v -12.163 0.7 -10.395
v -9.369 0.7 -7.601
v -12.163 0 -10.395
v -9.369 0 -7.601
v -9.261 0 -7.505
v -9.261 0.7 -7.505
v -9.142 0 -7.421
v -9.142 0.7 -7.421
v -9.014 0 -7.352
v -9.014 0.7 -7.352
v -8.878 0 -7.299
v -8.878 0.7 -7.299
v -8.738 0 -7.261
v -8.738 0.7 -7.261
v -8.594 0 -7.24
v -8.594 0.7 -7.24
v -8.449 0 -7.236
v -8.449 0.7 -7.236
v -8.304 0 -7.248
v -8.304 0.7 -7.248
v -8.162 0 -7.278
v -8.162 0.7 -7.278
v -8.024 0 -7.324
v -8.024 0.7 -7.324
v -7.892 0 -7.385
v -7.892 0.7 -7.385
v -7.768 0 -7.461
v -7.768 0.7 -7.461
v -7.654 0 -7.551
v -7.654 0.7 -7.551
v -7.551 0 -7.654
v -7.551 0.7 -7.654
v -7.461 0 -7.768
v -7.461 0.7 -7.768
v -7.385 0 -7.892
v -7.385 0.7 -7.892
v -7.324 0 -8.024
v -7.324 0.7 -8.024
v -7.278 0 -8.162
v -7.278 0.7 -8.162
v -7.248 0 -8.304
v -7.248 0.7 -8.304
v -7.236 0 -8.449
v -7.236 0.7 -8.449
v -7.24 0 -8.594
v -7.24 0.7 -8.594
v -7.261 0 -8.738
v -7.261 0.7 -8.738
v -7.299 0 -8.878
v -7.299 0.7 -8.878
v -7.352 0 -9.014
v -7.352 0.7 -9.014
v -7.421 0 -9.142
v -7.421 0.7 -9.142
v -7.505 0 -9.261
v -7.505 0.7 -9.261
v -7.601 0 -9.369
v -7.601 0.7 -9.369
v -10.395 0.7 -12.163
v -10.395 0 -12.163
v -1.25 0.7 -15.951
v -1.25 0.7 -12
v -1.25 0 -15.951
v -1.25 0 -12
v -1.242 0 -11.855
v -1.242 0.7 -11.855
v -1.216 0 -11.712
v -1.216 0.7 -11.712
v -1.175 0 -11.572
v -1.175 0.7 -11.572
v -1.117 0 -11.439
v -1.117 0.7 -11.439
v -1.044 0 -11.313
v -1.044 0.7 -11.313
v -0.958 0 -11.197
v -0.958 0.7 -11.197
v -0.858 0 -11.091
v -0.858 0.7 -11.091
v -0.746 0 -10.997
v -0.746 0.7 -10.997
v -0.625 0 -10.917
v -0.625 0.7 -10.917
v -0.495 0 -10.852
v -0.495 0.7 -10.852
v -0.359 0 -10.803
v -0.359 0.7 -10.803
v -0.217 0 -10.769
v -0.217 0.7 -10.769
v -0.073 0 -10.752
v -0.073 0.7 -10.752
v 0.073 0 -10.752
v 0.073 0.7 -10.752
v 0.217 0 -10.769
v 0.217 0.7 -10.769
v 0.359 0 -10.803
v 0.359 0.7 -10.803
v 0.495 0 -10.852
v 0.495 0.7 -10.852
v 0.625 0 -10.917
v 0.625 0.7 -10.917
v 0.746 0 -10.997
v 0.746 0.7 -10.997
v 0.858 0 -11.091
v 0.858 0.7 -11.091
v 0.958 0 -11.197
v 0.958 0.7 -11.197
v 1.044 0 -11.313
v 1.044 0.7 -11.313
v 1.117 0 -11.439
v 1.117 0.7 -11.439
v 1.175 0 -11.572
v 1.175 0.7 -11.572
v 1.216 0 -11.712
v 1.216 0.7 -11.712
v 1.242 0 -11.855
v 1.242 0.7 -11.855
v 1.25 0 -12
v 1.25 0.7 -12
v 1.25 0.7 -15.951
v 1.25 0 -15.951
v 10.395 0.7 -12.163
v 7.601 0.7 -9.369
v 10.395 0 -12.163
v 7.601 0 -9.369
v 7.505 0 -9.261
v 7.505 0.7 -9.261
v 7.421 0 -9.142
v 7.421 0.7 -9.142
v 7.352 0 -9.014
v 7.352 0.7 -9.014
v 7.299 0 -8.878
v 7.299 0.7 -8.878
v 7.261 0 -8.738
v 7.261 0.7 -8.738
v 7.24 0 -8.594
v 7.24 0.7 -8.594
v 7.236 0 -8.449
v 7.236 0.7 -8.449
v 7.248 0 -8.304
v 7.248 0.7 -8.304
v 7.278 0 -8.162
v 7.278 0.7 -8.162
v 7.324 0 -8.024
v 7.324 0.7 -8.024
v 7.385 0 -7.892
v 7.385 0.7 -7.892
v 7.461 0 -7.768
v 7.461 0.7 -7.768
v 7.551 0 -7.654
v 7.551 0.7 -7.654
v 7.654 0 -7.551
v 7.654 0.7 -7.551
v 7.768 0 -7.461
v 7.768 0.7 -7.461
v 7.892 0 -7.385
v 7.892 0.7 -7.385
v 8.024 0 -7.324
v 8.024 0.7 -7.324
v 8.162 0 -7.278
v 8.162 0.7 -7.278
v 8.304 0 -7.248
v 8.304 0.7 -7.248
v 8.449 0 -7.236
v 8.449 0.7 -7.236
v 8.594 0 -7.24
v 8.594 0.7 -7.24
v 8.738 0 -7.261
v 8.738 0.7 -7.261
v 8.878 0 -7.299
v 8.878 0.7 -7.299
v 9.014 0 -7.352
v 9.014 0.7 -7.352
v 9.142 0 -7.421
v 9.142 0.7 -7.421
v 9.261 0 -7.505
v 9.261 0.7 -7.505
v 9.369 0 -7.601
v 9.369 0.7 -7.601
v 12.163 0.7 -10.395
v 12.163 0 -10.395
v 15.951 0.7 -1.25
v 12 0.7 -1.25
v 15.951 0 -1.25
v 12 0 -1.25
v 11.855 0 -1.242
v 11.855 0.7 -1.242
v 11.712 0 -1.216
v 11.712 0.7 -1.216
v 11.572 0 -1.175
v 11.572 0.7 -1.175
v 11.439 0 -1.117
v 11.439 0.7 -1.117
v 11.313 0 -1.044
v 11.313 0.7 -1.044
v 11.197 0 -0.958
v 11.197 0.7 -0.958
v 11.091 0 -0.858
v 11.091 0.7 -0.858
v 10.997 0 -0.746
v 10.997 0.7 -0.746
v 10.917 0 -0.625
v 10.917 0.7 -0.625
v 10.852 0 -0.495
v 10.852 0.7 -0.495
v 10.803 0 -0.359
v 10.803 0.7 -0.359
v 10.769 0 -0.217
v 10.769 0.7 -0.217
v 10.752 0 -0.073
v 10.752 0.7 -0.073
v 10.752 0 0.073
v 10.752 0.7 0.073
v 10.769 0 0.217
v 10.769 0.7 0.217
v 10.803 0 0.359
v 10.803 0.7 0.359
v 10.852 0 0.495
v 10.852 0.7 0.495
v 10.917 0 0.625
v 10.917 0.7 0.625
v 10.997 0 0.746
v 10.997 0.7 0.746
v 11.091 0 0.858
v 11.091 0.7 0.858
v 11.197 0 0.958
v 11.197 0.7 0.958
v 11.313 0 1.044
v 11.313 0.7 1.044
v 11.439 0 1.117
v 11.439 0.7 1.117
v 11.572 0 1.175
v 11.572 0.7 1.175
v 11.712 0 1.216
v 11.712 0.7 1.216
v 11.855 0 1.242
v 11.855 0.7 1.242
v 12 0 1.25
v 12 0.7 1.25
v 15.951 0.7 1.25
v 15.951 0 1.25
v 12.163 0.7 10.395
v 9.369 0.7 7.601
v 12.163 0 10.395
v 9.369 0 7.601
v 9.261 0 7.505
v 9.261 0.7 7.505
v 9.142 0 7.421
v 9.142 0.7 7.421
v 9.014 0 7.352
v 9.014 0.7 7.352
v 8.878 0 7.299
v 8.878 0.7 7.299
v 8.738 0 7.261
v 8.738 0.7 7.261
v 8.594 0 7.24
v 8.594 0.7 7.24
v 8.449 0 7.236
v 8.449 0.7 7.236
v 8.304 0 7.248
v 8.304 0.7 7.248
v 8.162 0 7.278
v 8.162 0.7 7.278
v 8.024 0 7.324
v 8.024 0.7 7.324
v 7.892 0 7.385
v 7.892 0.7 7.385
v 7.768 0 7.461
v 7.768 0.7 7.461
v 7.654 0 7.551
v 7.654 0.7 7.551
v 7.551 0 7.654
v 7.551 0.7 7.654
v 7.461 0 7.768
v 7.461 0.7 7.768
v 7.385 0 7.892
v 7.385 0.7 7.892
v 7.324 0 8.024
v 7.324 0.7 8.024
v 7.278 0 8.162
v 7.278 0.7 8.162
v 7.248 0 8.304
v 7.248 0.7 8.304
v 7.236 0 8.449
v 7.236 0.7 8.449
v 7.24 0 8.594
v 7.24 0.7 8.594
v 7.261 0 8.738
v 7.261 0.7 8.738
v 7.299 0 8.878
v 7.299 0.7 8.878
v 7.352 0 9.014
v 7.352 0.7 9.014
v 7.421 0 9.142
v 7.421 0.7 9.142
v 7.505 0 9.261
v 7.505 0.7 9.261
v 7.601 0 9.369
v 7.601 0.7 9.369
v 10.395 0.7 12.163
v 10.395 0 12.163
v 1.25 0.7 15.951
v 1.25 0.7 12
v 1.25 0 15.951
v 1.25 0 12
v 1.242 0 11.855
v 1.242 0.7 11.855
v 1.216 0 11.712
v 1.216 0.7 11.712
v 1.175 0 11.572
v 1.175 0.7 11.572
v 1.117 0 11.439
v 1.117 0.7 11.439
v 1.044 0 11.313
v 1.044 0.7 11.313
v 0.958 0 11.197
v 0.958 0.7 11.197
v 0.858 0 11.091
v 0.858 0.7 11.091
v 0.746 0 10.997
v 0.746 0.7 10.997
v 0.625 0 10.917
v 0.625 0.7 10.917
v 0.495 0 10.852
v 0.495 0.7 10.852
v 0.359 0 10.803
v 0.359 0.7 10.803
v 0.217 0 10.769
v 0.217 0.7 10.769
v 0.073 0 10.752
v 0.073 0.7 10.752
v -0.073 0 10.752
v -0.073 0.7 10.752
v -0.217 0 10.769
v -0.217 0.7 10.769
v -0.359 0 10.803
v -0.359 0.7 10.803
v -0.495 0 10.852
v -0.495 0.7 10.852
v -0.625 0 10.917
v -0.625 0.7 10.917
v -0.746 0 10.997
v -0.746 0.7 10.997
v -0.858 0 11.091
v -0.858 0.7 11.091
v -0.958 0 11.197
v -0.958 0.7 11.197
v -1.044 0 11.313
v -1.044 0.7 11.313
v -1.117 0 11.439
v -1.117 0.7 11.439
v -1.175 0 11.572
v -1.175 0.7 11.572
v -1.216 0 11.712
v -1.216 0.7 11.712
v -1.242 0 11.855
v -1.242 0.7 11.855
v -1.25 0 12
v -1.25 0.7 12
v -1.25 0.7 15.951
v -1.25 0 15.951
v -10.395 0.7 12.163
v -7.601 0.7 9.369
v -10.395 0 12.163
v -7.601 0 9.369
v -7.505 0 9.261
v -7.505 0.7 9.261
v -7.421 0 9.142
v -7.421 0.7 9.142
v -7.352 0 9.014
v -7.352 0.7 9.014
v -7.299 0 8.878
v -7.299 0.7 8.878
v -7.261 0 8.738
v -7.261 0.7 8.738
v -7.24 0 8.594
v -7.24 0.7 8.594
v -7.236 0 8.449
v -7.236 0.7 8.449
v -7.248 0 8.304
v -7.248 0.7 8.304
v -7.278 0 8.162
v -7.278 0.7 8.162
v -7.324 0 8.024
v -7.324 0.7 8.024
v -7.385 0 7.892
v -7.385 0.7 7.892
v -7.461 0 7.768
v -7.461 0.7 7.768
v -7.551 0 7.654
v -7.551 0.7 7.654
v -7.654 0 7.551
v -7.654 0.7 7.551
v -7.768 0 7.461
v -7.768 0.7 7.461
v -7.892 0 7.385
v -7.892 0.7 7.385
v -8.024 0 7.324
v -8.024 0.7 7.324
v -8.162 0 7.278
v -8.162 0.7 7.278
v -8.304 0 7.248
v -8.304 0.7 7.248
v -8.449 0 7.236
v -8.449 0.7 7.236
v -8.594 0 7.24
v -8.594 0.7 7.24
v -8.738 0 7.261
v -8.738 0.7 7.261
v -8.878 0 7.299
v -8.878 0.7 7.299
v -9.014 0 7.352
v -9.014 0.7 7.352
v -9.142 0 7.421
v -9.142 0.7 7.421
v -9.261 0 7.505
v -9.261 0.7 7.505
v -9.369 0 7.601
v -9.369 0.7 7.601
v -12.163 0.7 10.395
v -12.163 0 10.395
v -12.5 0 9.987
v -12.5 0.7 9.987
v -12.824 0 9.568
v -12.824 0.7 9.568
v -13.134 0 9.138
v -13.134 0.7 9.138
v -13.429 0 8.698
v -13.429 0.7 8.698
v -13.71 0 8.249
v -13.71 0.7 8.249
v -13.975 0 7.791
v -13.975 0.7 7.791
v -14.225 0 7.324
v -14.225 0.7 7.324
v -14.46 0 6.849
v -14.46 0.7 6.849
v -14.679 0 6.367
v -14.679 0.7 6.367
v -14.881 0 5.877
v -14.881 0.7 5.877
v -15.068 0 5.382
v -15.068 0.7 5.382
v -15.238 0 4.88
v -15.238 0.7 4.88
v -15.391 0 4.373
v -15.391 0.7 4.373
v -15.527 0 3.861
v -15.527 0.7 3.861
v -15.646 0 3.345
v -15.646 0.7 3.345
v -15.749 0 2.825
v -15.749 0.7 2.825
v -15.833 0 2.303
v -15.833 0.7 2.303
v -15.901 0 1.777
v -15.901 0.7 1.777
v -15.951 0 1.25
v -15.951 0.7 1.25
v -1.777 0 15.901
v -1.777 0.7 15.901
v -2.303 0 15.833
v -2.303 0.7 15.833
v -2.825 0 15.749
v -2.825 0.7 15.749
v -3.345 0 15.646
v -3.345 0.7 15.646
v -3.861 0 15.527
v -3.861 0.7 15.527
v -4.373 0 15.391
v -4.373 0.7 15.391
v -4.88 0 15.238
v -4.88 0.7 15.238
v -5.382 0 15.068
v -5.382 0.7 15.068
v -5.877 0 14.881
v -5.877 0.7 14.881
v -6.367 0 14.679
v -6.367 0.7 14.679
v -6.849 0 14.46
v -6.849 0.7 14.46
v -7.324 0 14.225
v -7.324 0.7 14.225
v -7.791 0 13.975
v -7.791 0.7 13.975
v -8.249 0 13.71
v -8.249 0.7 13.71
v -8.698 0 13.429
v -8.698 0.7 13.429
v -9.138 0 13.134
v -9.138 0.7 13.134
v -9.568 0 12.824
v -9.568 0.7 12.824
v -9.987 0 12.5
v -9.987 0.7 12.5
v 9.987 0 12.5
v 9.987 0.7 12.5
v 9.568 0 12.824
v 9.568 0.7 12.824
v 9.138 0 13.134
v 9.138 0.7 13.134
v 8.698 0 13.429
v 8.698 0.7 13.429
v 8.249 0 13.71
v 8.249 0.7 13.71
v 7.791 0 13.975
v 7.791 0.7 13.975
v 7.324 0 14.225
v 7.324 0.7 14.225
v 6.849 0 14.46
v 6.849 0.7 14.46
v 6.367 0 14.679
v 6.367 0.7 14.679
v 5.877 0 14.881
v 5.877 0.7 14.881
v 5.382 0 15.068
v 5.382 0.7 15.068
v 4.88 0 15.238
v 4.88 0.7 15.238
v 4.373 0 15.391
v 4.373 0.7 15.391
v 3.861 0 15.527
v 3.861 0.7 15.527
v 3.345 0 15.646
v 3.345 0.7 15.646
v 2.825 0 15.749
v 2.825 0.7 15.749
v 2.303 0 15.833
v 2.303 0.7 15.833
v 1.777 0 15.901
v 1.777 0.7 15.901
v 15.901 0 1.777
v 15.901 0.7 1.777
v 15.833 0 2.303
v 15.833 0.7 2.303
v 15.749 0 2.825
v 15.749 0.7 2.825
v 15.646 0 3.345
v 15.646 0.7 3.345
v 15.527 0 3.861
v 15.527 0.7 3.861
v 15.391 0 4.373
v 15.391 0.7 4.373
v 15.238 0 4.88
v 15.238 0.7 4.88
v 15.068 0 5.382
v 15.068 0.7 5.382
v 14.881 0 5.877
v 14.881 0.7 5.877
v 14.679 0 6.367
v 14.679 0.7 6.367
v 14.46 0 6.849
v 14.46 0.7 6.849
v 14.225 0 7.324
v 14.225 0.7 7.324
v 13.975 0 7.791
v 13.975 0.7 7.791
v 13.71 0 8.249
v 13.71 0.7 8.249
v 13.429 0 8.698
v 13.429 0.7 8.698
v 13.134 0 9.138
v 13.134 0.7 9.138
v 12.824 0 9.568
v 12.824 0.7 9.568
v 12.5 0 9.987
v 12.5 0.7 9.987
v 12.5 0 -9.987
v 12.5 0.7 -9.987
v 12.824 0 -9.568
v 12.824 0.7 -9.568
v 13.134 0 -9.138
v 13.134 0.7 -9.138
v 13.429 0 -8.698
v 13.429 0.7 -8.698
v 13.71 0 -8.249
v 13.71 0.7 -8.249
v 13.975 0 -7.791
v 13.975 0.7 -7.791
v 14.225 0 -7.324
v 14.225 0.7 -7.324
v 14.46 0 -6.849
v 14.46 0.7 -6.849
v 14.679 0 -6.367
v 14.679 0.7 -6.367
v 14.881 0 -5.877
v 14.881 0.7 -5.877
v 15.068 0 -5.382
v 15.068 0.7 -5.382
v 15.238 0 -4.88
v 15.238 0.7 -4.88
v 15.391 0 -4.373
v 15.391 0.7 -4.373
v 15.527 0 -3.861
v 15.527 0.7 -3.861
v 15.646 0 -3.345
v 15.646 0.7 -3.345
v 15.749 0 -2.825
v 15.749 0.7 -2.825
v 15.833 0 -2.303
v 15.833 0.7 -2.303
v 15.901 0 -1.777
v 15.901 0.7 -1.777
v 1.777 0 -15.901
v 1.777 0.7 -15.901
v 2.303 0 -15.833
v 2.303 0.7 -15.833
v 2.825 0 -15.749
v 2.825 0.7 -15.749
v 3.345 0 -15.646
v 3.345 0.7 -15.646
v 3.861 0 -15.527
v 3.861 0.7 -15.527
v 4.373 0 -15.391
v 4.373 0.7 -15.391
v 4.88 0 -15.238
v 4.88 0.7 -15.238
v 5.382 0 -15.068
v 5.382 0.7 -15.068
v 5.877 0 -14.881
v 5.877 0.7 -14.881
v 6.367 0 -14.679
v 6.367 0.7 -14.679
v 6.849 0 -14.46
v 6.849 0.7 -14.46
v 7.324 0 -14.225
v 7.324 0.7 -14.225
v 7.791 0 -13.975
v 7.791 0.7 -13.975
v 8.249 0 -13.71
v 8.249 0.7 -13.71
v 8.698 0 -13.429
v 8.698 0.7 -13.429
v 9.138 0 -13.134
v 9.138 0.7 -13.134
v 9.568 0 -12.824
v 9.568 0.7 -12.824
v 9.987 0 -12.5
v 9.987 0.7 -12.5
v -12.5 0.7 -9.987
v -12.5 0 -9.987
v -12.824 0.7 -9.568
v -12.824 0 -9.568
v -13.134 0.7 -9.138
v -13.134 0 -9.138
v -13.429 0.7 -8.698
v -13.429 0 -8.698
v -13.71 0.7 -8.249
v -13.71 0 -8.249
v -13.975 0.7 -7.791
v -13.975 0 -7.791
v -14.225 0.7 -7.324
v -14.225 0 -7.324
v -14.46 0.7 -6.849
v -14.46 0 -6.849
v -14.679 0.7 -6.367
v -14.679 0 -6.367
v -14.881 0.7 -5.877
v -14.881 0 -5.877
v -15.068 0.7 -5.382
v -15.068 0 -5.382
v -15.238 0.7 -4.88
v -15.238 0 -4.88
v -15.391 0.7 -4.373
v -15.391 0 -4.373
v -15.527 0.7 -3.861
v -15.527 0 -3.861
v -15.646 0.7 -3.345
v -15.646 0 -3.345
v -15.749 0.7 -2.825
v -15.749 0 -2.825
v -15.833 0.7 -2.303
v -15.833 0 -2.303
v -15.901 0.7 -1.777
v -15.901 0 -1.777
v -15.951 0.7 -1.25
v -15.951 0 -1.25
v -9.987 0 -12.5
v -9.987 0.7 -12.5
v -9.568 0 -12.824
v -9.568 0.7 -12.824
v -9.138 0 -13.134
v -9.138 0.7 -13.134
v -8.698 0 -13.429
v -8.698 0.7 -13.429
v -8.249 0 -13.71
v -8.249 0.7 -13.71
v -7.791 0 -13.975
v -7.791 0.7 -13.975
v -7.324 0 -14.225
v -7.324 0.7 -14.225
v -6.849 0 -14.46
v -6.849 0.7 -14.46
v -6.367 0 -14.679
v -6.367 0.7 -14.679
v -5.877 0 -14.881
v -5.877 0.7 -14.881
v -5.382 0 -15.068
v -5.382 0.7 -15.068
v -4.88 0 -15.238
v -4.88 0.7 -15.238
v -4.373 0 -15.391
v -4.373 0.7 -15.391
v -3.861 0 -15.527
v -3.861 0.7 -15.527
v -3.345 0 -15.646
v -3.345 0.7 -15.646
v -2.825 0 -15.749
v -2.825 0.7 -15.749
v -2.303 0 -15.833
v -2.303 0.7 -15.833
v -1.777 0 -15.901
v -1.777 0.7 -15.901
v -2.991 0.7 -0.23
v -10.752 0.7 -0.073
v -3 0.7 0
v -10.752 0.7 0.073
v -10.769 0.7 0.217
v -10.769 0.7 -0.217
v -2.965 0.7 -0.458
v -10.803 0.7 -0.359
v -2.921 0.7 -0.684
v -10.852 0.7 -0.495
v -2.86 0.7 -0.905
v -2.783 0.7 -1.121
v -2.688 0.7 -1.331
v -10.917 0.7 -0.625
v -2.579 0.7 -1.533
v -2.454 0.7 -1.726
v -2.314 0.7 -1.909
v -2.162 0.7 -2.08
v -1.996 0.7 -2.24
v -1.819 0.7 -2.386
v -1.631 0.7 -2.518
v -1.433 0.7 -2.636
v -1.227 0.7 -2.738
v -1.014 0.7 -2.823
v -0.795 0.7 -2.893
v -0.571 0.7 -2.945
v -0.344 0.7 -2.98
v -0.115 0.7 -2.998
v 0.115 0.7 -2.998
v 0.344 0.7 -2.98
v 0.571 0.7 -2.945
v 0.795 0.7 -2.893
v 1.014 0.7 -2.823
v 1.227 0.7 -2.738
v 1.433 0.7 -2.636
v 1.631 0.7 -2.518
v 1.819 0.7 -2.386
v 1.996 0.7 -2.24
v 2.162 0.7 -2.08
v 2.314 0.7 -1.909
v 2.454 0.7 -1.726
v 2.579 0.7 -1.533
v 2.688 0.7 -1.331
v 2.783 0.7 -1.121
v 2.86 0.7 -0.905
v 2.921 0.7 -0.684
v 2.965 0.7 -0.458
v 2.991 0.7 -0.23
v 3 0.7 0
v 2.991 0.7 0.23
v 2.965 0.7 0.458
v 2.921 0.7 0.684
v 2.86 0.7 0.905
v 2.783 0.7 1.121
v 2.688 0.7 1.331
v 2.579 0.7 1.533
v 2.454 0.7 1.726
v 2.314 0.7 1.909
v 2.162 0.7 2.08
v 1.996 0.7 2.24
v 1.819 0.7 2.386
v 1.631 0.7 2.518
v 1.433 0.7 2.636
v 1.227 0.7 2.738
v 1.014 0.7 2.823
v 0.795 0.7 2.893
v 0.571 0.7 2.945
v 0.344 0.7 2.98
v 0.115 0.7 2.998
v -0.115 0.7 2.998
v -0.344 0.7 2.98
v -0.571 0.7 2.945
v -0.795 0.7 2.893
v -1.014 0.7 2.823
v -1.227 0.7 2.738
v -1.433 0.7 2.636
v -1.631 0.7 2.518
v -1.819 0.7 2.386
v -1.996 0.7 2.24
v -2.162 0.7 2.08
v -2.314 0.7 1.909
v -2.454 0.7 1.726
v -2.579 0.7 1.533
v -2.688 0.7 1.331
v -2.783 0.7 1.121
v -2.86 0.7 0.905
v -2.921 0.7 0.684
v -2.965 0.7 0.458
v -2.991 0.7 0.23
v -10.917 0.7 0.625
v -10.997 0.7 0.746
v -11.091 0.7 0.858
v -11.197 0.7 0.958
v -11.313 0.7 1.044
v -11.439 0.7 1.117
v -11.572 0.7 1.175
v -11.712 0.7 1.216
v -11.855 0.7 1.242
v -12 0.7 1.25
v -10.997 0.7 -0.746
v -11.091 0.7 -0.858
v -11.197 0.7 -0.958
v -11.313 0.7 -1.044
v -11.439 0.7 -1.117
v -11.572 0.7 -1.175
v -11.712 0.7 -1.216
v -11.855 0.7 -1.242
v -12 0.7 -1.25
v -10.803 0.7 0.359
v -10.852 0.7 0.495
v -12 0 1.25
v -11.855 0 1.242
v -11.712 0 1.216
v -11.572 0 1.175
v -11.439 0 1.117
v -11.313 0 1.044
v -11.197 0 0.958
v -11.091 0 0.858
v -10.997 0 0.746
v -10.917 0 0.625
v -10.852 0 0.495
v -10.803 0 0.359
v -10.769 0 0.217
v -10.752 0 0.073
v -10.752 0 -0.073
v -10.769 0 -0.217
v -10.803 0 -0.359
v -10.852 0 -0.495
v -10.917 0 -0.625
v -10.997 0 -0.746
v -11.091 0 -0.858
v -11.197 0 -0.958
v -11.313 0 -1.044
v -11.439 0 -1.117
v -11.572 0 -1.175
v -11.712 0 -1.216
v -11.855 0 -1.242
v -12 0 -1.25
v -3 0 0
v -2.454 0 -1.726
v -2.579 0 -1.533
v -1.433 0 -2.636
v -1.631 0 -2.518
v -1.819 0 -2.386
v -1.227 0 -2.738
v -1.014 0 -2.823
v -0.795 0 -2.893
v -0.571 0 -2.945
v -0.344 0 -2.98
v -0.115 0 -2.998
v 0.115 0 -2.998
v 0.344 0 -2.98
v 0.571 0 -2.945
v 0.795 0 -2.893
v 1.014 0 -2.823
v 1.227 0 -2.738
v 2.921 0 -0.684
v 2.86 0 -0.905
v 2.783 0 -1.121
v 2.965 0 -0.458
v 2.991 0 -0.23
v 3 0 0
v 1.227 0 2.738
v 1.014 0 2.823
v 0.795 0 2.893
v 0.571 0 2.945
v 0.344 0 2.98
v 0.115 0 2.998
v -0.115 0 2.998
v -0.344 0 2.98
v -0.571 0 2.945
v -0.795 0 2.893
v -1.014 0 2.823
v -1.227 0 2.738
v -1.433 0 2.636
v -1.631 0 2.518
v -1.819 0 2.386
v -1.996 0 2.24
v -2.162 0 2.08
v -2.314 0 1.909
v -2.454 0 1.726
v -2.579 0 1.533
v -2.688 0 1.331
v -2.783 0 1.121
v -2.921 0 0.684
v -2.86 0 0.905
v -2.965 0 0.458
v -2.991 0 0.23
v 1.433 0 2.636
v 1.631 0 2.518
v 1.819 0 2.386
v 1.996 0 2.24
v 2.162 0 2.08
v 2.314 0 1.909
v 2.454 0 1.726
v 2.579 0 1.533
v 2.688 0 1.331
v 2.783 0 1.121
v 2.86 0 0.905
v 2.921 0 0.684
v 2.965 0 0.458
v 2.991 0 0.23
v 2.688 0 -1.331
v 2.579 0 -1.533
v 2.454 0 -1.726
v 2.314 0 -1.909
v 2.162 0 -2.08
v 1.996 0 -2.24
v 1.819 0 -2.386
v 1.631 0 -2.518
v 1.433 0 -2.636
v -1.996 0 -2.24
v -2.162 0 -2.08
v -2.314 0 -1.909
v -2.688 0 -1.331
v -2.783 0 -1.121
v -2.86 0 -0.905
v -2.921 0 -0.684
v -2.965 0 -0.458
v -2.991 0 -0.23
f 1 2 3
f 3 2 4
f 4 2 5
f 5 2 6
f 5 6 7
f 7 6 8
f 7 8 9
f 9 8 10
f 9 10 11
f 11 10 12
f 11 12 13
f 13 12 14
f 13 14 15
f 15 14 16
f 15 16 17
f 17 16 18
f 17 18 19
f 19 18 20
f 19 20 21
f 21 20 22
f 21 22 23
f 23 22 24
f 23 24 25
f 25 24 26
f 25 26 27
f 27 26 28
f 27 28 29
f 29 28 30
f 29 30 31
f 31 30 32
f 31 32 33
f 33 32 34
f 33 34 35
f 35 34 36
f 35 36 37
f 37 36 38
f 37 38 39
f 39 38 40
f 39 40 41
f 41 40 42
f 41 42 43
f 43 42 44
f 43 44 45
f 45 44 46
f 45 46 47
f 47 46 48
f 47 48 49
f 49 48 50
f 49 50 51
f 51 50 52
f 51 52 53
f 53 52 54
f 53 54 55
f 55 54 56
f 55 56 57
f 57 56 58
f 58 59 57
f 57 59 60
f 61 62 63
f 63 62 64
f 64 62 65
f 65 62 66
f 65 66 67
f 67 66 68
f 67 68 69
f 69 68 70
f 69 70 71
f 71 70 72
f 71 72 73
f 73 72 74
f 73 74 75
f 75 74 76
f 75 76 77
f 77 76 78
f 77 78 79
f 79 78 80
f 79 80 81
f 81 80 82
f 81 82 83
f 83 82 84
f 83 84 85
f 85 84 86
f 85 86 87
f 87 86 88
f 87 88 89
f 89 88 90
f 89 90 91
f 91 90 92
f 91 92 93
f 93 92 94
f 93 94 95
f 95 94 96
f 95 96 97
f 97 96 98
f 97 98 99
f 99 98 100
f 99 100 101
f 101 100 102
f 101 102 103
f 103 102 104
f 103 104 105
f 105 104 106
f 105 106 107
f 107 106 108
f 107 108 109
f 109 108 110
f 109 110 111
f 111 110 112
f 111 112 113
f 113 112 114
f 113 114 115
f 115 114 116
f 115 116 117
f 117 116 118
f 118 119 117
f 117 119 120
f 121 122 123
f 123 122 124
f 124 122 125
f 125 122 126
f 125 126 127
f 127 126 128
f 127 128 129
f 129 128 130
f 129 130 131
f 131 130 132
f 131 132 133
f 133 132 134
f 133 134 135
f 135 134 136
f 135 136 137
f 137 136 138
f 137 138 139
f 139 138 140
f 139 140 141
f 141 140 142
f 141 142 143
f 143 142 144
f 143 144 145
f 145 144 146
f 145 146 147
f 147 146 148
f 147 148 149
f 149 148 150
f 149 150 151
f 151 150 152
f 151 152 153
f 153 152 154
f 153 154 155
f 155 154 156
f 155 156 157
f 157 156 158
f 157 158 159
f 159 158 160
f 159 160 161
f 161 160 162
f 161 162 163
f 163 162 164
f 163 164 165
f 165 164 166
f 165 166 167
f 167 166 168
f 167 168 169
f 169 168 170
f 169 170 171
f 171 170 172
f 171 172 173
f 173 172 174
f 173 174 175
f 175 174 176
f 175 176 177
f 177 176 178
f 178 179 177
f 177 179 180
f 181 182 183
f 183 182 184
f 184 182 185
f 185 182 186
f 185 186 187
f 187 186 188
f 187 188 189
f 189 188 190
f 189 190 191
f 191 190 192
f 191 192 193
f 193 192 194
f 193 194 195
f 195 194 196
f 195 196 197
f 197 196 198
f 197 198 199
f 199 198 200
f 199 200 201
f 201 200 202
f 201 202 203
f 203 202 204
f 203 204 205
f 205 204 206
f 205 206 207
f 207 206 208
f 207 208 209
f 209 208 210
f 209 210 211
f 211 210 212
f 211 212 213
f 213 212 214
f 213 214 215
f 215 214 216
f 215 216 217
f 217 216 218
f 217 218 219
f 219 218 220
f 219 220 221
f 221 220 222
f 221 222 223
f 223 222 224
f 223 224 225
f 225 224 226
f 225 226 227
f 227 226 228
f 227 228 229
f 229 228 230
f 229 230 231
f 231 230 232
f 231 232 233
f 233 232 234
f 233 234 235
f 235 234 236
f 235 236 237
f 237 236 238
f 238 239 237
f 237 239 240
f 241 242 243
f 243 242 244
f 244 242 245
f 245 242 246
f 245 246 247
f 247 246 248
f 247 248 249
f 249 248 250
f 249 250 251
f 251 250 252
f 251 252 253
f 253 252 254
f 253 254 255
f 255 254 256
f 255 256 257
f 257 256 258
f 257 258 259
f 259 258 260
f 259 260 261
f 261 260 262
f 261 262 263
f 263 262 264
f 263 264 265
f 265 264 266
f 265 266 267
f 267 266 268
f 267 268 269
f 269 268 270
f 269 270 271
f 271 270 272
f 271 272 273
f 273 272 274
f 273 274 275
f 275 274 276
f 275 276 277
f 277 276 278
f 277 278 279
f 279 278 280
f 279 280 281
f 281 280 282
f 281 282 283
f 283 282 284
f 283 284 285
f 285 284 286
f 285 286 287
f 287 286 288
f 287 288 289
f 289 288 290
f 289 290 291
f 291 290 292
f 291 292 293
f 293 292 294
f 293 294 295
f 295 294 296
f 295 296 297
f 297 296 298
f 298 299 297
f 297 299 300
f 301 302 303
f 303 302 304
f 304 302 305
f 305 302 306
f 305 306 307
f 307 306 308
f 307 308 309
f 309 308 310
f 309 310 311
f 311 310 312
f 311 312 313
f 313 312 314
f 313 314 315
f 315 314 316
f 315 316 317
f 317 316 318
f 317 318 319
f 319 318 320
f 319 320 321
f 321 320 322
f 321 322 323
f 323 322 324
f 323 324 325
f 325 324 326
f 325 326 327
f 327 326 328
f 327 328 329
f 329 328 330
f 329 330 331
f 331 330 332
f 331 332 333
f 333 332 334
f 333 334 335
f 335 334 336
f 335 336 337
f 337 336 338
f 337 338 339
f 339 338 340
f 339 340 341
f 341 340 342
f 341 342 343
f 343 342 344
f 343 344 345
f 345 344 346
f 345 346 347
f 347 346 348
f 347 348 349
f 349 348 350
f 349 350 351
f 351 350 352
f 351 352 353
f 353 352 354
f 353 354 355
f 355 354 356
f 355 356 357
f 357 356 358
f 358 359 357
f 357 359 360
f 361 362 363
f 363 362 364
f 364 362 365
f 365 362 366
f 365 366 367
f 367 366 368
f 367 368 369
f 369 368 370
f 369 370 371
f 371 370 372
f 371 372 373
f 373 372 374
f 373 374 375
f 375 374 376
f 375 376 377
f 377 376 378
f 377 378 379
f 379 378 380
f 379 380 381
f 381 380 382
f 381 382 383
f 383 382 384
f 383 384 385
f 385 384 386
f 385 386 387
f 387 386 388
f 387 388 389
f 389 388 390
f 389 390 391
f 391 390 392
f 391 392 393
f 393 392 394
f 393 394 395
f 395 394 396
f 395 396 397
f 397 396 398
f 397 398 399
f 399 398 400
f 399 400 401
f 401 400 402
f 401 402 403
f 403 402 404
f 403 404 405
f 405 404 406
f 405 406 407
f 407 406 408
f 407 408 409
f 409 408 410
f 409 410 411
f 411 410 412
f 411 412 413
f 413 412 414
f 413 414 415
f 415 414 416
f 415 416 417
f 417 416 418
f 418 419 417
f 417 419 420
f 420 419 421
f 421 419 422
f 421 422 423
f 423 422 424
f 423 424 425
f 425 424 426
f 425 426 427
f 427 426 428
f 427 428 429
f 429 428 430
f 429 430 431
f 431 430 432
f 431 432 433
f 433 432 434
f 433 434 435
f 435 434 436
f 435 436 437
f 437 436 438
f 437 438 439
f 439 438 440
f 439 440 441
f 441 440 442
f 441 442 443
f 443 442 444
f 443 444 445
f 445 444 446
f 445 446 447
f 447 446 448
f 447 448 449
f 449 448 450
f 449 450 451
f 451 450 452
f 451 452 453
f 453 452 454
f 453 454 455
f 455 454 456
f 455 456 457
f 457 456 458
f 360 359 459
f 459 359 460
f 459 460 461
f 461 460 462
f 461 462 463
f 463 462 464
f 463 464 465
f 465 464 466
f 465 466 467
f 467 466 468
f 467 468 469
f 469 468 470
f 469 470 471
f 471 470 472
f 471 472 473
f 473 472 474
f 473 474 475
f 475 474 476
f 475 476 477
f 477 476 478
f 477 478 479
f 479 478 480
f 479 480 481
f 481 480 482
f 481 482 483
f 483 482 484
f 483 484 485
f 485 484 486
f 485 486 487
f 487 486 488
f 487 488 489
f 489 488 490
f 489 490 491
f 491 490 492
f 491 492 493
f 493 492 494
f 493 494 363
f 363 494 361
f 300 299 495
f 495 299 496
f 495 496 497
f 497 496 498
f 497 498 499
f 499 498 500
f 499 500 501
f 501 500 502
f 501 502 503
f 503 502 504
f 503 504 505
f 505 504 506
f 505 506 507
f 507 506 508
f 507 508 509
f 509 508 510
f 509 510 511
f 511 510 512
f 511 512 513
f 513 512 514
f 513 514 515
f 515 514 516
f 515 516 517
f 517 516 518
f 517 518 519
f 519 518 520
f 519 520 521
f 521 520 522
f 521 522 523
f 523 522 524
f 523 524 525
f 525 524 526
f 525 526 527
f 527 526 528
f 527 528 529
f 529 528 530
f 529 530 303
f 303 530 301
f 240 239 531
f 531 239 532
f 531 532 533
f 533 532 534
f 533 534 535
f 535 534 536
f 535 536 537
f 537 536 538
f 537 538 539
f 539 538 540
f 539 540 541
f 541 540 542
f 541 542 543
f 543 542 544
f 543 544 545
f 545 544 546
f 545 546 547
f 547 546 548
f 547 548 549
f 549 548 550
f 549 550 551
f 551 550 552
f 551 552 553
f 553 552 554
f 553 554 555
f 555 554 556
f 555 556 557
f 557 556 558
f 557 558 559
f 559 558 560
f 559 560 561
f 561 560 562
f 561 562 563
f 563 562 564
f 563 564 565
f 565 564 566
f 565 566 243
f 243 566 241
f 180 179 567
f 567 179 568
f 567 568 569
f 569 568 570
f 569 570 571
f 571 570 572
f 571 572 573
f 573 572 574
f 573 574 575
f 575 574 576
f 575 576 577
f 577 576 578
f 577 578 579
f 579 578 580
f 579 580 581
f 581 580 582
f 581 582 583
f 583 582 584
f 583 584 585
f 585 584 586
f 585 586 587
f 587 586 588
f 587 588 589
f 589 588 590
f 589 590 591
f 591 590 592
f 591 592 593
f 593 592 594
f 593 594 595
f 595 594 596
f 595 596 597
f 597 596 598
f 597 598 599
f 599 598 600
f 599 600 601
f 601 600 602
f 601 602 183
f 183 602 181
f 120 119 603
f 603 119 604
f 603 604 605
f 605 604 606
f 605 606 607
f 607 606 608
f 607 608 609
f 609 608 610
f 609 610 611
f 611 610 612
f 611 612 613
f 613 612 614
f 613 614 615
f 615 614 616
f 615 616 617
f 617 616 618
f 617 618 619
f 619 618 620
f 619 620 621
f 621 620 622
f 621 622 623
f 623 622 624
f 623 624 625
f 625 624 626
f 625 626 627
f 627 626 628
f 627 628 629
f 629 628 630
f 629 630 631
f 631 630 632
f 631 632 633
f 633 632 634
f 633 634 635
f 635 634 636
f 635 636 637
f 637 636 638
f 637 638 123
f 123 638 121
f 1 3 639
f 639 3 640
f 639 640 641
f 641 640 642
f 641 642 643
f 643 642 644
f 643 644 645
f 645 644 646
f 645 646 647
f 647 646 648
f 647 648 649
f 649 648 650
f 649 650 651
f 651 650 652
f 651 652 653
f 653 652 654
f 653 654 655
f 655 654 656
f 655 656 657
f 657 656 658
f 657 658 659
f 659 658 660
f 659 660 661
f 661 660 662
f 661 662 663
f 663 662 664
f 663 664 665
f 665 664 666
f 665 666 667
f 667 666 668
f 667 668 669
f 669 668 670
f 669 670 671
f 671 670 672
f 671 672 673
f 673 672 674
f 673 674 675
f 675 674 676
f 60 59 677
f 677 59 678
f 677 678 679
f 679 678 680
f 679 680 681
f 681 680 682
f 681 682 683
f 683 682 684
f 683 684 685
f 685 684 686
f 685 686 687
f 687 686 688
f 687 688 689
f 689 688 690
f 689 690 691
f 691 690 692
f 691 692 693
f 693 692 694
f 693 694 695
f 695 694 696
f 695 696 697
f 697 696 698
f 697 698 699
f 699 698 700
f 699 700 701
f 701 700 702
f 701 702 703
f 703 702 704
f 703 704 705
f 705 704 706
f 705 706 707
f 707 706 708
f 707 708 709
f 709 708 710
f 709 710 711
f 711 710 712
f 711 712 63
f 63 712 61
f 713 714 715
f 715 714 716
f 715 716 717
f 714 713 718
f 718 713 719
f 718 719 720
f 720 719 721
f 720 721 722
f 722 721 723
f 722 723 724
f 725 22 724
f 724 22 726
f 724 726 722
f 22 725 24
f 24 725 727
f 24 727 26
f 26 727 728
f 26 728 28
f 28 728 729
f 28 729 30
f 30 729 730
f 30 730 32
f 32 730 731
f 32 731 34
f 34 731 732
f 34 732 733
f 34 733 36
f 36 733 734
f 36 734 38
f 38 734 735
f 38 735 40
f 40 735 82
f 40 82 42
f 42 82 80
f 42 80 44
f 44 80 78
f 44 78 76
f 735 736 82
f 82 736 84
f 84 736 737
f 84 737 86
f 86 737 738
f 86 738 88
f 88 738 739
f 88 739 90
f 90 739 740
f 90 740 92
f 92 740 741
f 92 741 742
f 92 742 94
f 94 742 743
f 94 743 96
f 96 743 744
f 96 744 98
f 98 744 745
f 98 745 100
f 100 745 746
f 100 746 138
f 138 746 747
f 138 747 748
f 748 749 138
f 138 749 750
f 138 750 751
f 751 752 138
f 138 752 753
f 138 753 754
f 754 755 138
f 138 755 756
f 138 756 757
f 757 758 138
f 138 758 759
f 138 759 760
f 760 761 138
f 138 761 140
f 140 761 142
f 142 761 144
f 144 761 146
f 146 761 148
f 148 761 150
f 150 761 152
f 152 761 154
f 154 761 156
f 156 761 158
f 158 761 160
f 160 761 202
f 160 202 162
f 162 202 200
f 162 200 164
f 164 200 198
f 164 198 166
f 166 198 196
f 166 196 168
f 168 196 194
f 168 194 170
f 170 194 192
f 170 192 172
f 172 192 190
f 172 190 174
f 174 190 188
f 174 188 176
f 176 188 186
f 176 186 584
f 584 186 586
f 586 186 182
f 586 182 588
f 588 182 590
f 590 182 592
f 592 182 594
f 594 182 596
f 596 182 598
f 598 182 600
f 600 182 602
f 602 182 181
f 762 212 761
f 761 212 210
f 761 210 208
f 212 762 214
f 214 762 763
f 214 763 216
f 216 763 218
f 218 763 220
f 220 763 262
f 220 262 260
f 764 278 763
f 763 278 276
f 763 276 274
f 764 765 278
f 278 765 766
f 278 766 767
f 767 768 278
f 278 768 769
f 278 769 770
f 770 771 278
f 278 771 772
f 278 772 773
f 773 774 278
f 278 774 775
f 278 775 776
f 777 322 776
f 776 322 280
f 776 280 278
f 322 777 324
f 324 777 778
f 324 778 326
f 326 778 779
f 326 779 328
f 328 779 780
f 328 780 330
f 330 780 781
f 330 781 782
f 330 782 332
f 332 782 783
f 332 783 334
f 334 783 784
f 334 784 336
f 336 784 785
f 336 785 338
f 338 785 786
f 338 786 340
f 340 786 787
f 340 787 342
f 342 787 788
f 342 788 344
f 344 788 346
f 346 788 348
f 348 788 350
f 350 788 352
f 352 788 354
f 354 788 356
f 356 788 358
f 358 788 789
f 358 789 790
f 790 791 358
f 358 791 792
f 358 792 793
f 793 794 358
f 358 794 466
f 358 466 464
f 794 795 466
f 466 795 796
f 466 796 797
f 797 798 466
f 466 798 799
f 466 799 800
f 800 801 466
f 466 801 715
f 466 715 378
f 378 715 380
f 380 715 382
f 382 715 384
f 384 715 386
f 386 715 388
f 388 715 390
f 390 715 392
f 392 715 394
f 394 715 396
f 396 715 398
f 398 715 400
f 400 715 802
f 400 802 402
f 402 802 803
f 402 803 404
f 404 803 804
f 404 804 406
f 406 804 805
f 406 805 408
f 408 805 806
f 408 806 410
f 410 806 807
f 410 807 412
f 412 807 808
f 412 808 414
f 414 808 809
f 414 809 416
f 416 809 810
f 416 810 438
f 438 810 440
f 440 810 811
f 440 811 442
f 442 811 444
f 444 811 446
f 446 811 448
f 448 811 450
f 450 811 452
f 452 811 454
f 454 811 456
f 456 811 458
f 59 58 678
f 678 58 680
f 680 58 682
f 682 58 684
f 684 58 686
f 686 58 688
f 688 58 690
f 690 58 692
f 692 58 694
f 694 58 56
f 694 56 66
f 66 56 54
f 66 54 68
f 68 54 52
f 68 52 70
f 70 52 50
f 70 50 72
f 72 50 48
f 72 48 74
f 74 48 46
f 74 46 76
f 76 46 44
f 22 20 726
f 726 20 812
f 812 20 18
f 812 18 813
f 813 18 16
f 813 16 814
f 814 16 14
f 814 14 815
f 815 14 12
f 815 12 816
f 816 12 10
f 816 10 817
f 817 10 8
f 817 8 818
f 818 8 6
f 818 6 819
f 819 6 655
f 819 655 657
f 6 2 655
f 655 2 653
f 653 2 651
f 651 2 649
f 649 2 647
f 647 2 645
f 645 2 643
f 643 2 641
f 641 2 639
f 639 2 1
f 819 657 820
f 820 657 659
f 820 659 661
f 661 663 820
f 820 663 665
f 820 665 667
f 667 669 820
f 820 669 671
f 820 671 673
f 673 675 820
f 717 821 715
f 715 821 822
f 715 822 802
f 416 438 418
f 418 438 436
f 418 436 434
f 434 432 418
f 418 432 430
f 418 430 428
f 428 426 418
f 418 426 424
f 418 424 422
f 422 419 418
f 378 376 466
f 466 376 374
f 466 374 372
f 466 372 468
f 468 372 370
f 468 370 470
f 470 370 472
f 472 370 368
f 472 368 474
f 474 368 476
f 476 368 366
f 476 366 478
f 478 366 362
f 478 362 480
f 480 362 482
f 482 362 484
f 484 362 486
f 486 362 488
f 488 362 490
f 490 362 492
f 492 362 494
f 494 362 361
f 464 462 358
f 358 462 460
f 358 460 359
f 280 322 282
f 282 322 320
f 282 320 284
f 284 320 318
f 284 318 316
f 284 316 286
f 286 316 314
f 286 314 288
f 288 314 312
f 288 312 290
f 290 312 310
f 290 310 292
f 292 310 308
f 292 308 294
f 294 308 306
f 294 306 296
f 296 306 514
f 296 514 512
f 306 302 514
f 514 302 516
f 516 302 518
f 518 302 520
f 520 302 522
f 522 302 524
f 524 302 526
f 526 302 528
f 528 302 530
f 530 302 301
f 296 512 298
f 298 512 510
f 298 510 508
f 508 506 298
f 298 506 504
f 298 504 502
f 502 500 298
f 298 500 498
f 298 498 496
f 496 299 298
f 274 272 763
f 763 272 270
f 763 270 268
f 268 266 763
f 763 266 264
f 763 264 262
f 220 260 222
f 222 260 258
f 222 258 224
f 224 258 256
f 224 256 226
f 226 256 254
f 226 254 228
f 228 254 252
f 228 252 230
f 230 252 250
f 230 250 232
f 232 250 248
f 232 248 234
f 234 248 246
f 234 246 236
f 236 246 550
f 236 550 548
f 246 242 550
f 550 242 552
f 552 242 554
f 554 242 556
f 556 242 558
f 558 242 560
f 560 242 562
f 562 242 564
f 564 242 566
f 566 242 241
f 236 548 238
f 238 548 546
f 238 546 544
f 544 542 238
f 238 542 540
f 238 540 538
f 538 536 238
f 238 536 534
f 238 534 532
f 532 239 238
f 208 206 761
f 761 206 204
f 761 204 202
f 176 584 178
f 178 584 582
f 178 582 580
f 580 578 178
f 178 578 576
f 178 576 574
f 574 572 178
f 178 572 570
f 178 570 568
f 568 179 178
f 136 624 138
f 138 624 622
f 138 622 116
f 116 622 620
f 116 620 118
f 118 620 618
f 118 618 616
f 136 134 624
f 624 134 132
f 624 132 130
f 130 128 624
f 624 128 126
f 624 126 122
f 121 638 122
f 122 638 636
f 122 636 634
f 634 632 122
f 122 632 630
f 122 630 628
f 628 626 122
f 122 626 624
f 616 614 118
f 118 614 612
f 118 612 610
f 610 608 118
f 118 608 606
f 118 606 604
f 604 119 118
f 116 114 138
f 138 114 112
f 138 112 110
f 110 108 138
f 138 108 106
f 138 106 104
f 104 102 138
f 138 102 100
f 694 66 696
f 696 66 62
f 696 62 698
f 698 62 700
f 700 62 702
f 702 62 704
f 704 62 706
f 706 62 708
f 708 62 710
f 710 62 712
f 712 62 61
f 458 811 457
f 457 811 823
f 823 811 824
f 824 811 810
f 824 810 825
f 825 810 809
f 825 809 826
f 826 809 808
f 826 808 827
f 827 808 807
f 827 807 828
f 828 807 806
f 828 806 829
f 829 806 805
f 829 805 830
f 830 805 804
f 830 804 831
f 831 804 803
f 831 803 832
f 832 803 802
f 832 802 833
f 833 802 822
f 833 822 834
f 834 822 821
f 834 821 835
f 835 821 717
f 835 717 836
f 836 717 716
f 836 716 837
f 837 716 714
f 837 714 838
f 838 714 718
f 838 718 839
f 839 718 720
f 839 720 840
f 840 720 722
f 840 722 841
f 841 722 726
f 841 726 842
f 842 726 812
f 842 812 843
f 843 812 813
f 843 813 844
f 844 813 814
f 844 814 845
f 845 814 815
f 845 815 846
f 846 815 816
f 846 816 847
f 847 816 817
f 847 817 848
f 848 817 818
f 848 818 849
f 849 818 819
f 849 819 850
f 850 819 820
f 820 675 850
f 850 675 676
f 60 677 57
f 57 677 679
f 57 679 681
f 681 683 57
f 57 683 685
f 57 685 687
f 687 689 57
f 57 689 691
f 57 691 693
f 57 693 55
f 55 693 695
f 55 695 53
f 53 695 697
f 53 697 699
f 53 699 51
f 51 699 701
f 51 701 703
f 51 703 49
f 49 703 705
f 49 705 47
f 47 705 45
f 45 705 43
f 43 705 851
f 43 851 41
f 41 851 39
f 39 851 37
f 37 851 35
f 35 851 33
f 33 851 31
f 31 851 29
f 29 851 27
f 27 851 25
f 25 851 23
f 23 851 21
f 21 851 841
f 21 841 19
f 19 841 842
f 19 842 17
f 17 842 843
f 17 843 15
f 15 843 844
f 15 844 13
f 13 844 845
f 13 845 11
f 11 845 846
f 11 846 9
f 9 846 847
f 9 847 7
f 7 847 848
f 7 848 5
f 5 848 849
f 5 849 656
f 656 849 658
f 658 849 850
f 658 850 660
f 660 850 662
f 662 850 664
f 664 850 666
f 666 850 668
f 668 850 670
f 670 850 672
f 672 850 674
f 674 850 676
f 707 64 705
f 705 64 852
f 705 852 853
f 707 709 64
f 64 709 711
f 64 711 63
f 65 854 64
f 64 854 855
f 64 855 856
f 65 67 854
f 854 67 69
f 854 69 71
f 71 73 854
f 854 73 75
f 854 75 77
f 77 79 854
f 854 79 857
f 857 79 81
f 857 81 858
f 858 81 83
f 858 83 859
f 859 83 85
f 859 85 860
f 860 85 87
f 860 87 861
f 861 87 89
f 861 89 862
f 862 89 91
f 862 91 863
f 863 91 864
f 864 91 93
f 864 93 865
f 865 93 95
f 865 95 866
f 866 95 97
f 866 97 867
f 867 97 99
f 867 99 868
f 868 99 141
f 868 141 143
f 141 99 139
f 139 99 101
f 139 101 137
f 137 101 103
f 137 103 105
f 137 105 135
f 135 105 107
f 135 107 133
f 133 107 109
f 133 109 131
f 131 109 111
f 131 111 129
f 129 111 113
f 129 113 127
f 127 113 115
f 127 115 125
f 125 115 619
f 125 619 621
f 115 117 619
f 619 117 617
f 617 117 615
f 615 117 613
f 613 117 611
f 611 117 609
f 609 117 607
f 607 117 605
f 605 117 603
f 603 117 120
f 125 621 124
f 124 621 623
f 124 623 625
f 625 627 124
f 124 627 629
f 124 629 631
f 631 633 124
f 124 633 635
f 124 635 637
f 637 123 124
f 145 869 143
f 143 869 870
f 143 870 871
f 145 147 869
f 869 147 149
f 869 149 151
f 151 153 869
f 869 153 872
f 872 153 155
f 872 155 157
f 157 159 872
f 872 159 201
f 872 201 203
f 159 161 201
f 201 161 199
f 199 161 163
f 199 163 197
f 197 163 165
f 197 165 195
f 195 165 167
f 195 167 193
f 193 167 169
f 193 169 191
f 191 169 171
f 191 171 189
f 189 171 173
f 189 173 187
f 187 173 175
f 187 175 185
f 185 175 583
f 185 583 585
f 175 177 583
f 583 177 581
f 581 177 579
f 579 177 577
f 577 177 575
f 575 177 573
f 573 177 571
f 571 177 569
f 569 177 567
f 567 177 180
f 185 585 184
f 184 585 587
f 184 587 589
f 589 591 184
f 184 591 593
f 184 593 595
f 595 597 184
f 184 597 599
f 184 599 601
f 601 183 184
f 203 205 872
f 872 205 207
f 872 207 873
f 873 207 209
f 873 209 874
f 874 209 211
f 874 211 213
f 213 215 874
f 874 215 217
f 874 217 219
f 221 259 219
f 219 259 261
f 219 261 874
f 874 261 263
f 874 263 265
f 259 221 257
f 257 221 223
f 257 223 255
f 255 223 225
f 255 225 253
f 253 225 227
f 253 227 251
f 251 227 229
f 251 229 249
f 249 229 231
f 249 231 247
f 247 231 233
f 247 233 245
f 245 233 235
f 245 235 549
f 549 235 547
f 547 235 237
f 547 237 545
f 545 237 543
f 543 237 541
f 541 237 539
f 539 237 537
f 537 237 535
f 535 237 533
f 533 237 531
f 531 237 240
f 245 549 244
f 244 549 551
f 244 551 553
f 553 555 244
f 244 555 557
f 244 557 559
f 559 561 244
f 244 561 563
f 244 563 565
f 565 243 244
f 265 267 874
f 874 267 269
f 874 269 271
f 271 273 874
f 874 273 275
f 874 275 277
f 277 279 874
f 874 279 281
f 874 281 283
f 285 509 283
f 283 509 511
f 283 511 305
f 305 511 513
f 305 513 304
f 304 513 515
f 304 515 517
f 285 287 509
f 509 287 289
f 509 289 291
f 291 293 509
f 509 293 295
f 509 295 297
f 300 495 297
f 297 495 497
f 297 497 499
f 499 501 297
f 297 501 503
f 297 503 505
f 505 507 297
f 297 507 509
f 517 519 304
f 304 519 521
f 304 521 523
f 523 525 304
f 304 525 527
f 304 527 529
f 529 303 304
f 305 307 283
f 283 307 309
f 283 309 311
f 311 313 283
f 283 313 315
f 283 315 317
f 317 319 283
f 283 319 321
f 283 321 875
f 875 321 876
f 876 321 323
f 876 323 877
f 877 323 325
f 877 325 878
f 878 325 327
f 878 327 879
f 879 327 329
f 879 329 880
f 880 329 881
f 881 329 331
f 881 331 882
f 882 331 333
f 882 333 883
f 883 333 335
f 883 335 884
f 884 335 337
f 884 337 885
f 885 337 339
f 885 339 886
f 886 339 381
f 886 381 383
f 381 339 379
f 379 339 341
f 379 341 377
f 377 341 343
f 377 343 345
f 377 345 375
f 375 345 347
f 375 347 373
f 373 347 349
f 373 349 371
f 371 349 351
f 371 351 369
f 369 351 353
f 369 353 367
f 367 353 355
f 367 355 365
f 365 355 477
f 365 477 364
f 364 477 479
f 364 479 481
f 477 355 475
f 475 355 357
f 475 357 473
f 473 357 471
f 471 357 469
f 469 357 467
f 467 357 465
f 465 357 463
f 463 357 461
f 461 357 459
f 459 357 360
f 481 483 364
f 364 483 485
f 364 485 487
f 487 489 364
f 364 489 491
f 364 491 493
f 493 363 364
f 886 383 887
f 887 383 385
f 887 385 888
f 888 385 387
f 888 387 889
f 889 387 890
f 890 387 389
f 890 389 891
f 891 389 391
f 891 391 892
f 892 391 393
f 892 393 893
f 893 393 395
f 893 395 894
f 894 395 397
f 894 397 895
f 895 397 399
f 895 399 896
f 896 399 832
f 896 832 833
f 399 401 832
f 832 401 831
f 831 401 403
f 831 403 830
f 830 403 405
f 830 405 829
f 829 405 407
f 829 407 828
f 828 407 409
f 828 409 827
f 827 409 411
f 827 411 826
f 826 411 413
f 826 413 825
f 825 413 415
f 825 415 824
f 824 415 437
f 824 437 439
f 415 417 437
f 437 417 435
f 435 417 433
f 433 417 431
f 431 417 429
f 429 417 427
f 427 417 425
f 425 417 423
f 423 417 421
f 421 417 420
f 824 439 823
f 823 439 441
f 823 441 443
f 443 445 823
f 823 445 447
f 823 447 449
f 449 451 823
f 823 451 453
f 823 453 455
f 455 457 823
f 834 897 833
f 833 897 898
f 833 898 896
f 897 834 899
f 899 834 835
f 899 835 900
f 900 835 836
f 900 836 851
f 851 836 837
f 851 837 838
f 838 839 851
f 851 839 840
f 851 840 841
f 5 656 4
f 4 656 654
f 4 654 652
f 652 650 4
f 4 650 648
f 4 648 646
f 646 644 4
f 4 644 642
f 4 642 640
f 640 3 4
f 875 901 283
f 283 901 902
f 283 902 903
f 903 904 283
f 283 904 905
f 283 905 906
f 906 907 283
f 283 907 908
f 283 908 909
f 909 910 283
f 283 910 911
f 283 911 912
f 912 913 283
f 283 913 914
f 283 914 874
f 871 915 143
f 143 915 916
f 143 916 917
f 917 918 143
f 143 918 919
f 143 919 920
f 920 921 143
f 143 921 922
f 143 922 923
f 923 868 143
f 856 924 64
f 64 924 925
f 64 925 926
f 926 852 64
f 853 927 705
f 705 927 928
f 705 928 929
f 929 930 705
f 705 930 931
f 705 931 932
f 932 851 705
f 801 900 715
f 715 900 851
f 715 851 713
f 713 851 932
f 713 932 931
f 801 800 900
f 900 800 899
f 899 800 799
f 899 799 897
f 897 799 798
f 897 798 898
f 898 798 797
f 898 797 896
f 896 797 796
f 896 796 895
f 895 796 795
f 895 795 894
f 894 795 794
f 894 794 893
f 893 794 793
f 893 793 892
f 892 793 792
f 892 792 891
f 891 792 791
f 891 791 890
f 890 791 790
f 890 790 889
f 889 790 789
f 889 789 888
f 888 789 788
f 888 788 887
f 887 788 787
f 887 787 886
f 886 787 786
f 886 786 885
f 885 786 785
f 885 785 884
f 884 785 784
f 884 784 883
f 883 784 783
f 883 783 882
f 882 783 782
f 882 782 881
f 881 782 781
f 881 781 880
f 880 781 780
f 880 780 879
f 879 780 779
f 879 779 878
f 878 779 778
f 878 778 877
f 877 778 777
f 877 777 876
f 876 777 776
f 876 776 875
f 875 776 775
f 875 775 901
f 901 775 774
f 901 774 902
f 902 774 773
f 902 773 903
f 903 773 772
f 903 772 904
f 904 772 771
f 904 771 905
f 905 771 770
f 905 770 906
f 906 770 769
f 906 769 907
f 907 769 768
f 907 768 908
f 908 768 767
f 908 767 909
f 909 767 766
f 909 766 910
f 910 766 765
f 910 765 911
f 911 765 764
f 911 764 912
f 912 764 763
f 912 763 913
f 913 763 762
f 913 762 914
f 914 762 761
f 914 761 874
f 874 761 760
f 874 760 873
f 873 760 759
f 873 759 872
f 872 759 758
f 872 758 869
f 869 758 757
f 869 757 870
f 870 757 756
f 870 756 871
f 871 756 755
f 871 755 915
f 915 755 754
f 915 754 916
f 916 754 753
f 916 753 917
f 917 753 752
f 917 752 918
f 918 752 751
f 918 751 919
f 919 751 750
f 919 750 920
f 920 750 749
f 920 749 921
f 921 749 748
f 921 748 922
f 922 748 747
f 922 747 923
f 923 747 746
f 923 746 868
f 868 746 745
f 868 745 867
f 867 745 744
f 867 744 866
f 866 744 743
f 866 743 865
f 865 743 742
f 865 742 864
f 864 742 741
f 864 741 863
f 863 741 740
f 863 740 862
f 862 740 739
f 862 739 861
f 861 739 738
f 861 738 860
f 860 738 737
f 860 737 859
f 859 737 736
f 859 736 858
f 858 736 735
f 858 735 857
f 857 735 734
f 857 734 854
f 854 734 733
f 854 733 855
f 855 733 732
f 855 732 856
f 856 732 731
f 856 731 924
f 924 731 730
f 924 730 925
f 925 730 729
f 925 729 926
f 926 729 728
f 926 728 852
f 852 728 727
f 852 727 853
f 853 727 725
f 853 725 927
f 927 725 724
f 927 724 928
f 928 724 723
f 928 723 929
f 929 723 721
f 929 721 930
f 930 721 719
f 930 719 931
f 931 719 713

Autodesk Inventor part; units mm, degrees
ref_plane "YZ Plane" through (0, 0, 0) normal (1, 0, 0) x (0, 1, 0)
ref_plane "XZ Plane" through (0, 0, 0) normal (0, 1, 0) x (-1, 0, 0)
ref_plane "XY Plane" through (0, 0, 0) normal (0, 0, 1) x (1, 0, 0)
sketch "Skizze1" plane through (0, 0, 0) normal (0, 1, 0) x (-1, 0, 0)
  circle A0 centre (0, 0) radius 3
  circle A1 centre (0, 0) radius 16
  dimension "d0" = 6
  dimension "d1" = 32
extrude "Extrusion1" add sketch "Skizze1" along normal blind 0.7
sketch "Skizze2" plane through (0, 0.7, 0) normal (0, 1, 0) x (1, 0, 0)
  circle A0 centre (0, 0) radius 16 projected
  line L0 (-15.9511, -1.25) -> (-12, -1.25)
  arc A1 (-12, -1.25) -> (-12, 1.25) centre (-12, 0) ccw
  line L1 (-12, 1.25) -> (-15.9511, 1.25)
  point P0 (-13.9755, -1.25)
  dimension "d4" = 12
  dimension "d5" = 2.5
extrude "Extrusion2" cut sketch "Skizze2" against normal blind 0.7 contours L1 A1 L0 A0 picked at (-13.3315, -0.139)
pattern_circular "Runde Anordnung1" count 8 over 360 about axis through (0, -10, 0) along (0, 1, 0) of "Extrusion2"
properties part number "Disc"
